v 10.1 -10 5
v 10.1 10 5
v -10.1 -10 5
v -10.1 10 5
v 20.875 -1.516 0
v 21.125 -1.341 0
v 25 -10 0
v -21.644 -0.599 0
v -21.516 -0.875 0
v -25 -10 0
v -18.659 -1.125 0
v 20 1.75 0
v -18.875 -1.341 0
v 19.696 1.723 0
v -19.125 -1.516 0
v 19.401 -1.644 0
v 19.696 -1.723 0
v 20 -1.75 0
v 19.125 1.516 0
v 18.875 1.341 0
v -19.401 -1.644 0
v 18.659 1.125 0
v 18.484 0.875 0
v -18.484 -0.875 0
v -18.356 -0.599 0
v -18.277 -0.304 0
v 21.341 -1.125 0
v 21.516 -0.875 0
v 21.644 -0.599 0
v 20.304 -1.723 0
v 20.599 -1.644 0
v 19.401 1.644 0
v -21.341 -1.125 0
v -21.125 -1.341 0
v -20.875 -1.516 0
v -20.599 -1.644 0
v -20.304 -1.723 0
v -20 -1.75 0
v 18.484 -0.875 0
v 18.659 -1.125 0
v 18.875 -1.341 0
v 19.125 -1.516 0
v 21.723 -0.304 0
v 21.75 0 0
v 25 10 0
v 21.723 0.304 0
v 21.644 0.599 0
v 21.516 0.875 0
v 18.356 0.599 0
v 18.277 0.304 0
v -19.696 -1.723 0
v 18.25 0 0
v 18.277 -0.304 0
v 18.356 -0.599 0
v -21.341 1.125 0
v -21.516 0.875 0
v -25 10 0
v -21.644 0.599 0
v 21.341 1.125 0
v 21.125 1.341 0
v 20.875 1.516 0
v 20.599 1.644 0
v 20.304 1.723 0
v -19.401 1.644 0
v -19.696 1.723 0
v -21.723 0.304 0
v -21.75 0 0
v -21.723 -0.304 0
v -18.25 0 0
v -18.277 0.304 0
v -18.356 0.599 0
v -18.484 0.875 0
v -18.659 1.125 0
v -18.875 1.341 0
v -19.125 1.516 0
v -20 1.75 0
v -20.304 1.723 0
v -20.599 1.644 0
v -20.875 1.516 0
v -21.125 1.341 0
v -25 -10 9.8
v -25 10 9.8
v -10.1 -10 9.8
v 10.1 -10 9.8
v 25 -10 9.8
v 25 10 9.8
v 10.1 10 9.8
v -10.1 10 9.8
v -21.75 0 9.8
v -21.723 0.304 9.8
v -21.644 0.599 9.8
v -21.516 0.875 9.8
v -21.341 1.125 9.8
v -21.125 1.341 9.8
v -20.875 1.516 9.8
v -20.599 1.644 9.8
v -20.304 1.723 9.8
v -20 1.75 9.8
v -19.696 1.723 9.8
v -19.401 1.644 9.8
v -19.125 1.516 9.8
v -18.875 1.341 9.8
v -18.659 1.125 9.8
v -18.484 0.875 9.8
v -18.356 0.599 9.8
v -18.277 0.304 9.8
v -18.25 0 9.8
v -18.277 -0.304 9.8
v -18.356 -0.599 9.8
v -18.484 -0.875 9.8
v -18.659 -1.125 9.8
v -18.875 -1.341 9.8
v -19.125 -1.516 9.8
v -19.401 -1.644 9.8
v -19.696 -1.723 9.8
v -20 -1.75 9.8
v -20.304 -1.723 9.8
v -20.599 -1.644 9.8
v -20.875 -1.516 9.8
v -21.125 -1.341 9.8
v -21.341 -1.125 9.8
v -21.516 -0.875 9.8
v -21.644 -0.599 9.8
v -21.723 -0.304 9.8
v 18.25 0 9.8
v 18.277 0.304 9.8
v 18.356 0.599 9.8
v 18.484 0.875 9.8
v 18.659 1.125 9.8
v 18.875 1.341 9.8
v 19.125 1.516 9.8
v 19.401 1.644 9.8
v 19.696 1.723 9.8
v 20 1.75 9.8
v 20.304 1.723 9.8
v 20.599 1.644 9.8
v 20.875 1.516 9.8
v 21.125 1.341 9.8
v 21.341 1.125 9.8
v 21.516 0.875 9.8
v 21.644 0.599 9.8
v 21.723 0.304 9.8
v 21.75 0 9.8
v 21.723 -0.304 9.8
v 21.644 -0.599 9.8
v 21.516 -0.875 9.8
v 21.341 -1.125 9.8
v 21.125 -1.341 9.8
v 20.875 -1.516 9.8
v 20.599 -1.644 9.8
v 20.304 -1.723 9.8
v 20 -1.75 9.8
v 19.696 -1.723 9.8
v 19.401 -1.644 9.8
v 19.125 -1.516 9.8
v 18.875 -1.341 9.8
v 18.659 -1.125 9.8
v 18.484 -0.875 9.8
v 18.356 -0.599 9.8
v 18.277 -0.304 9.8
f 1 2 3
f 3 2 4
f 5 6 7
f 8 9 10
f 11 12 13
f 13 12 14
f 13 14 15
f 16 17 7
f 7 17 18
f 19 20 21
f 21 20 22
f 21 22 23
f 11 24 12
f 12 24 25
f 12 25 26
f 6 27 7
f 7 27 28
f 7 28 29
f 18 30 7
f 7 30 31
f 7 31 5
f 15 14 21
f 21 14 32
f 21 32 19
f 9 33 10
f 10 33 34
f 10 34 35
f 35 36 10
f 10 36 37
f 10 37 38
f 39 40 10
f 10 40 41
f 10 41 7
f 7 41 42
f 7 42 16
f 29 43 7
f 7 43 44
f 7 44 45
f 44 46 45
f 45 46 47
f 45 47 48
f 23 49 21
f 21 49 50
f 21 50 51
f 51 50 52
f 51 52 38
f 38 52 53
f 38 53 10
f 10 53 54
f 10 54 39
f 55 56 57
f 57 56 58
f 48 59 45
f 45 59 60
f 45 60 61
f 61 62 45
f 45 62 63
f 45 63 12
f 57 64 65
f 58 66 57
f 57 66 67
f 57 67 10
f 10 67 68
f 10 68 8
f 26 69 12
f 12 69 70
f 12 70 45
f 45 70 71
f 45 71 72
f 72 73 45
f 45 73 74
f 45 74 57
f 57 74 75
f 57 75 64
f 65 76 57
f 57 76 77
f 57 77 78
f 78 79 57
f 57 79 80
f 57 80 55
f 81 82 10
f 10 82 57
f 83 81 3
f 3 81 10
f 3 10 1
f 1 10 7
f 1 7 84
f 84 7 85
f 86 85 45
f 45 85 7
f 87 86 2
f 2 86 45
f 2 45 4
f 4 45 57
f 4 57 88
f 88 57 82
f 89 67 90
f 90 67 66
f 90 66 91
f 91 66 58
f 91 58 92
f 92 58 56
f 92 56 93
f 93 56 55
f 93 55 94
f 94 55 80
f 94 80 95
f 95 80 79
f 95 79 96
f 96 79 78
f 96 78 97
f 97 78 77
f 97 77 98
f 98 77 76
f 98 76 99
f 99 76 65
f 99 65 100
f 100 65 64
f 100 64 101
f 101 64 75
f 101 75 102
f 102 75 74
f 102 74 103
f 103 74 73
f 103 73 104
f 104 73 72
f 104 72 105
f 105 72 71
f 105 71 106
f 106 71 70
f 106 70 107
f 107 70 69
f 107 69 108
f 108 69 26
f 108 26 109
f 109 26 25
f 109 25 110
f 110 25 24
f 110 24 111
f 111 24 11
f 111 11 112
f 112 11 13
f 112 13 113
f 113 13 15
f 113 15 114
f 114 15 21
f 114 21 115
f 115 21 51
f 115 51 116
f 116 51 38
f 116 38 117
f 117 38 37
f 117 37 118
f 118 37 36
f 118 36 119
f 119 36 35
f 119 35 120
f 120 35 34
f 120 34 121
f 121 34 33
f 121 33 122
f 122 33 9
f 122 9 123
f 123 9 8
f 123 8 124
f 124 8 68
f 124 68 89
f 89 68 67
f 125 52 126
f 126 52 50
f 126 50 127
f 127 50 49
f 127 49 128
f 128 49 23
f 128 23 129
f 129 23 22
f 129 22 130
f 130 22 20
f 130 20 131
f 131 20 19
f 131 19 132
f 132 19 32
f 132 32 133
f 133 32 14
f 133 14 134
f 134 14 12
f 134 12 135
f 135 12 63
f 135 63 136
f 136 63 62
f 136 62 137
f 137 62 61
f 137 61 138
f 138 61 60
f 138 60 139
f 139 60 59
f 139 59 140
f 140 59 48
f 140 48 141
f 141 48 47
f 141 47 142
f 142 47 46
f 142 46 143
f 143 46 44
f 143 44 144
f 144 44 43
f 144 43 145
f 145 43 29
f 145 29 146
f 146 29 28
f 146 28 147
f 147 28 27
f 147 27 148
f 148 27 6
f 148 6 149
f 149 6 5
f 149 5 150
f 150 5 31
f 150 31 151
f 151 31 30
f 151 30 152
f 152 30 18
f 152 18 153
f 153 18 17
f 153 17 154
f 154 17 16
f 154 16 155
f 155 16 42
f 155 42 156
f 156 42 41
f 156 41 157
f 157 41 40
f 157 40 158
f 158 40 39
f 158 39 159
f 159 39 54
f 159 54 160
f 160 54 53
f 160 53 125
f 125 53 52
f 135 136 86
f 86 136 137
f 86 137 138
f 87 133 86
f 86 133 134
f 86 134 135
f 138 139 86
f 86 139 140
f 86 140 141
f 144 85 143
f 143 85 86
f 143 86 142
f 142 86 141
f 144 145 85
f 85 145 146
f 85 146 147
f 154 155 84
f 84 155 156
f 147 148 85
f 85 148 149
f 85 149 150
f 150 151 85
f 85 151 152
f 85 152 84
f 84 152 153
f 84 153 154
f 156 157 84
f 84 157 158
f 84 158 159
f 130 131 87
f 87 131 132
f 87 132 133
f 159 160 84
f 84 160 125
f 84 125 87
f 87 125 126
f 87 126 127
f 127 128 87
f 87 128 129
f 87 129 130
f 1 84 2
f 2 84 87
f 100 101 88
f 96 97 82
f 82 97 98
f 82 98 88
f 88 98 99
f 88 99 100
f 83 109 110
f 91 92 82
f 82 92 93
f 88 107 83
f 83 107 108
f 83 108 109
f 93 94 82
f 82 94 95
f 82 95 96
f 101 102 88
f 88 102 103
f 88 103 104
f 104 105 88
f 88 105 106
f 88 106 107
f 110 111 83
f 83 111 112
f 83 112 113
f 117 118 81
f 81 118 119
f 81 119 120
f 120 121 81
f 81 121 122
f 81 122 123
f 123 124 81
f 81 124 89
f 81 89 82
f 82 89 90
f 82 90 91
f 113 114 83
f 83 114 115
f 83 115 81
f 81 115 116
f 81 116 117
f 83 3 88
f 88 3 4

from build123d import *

# Parameters (mm, degrees)
SKETCH2_W           = 50
SKETCH2_H           = 20
SKETCH2_R           = 1.75
BOSS_EXTRUDE1_DEPTH = 5
BOSS_EXTRUDE2_DEPTH = 20
SKETCH6_R           = 1.75
CUT_EXTRUDE1_DEPTH  = 10.8


with BuildPart() as part:
    # Sketch2 → Boss-Extrude1 (new body)
    with BuildSketch(Plane.XY):
        Rectangle(SKETCH2_W, SKETCH2_H)
        with Locations((-20, 0)):
            Circle(SKETCH2_R, mode=Mode.SUBTRACT)
        with Locations((20, 0)):
            Circle(SKETCH2_R, mode=Mode.SUBTRACT)
    extrude(amount=BOSS_EXTRUDE1_DEPTH)

    # Sketch5 → Boss-Extrude2 (add)
    with BuildSketch(Plane.XZ.offset(10)):
        with BuildLine():
            Line((-25, 5), (-25, 9.8))
            Line((-25, 9.8), (-10.1, 9.8))
            Line((-10.1, 9.8), (-10.1, 5))
            Line((-10.1, 5), (10.1, 5))
            Line((10.1, 5), (10.1, 9.8))
            Line((10.1, 9.8), (25, 9.8))
            Line((25, 9.8), (25, 5))
            ThreePointArc((25, 5), (0, 0), (-25, 5))
        make_face()
    extrude(amount=-BOSS_EXTRUDE2_DEPTH)

    # Sketch6 → Cut-Extrude1 (cut, through all)
    with BuildSketch(Plane(origin=(0, 0, 0), x_dir=(-1, 0, 0), z_dir=(0, 0, -1))):
        with Locations((20, 0)):
            Circle(SKETCH6_R)
        with Locations((-20, 0)):
            Circle(SKETCH6_R)
    extrude(amount=-CUT_EXTRUDE1_DEPTH, mode=Mode.SUBTRACT)


solid = part.part
